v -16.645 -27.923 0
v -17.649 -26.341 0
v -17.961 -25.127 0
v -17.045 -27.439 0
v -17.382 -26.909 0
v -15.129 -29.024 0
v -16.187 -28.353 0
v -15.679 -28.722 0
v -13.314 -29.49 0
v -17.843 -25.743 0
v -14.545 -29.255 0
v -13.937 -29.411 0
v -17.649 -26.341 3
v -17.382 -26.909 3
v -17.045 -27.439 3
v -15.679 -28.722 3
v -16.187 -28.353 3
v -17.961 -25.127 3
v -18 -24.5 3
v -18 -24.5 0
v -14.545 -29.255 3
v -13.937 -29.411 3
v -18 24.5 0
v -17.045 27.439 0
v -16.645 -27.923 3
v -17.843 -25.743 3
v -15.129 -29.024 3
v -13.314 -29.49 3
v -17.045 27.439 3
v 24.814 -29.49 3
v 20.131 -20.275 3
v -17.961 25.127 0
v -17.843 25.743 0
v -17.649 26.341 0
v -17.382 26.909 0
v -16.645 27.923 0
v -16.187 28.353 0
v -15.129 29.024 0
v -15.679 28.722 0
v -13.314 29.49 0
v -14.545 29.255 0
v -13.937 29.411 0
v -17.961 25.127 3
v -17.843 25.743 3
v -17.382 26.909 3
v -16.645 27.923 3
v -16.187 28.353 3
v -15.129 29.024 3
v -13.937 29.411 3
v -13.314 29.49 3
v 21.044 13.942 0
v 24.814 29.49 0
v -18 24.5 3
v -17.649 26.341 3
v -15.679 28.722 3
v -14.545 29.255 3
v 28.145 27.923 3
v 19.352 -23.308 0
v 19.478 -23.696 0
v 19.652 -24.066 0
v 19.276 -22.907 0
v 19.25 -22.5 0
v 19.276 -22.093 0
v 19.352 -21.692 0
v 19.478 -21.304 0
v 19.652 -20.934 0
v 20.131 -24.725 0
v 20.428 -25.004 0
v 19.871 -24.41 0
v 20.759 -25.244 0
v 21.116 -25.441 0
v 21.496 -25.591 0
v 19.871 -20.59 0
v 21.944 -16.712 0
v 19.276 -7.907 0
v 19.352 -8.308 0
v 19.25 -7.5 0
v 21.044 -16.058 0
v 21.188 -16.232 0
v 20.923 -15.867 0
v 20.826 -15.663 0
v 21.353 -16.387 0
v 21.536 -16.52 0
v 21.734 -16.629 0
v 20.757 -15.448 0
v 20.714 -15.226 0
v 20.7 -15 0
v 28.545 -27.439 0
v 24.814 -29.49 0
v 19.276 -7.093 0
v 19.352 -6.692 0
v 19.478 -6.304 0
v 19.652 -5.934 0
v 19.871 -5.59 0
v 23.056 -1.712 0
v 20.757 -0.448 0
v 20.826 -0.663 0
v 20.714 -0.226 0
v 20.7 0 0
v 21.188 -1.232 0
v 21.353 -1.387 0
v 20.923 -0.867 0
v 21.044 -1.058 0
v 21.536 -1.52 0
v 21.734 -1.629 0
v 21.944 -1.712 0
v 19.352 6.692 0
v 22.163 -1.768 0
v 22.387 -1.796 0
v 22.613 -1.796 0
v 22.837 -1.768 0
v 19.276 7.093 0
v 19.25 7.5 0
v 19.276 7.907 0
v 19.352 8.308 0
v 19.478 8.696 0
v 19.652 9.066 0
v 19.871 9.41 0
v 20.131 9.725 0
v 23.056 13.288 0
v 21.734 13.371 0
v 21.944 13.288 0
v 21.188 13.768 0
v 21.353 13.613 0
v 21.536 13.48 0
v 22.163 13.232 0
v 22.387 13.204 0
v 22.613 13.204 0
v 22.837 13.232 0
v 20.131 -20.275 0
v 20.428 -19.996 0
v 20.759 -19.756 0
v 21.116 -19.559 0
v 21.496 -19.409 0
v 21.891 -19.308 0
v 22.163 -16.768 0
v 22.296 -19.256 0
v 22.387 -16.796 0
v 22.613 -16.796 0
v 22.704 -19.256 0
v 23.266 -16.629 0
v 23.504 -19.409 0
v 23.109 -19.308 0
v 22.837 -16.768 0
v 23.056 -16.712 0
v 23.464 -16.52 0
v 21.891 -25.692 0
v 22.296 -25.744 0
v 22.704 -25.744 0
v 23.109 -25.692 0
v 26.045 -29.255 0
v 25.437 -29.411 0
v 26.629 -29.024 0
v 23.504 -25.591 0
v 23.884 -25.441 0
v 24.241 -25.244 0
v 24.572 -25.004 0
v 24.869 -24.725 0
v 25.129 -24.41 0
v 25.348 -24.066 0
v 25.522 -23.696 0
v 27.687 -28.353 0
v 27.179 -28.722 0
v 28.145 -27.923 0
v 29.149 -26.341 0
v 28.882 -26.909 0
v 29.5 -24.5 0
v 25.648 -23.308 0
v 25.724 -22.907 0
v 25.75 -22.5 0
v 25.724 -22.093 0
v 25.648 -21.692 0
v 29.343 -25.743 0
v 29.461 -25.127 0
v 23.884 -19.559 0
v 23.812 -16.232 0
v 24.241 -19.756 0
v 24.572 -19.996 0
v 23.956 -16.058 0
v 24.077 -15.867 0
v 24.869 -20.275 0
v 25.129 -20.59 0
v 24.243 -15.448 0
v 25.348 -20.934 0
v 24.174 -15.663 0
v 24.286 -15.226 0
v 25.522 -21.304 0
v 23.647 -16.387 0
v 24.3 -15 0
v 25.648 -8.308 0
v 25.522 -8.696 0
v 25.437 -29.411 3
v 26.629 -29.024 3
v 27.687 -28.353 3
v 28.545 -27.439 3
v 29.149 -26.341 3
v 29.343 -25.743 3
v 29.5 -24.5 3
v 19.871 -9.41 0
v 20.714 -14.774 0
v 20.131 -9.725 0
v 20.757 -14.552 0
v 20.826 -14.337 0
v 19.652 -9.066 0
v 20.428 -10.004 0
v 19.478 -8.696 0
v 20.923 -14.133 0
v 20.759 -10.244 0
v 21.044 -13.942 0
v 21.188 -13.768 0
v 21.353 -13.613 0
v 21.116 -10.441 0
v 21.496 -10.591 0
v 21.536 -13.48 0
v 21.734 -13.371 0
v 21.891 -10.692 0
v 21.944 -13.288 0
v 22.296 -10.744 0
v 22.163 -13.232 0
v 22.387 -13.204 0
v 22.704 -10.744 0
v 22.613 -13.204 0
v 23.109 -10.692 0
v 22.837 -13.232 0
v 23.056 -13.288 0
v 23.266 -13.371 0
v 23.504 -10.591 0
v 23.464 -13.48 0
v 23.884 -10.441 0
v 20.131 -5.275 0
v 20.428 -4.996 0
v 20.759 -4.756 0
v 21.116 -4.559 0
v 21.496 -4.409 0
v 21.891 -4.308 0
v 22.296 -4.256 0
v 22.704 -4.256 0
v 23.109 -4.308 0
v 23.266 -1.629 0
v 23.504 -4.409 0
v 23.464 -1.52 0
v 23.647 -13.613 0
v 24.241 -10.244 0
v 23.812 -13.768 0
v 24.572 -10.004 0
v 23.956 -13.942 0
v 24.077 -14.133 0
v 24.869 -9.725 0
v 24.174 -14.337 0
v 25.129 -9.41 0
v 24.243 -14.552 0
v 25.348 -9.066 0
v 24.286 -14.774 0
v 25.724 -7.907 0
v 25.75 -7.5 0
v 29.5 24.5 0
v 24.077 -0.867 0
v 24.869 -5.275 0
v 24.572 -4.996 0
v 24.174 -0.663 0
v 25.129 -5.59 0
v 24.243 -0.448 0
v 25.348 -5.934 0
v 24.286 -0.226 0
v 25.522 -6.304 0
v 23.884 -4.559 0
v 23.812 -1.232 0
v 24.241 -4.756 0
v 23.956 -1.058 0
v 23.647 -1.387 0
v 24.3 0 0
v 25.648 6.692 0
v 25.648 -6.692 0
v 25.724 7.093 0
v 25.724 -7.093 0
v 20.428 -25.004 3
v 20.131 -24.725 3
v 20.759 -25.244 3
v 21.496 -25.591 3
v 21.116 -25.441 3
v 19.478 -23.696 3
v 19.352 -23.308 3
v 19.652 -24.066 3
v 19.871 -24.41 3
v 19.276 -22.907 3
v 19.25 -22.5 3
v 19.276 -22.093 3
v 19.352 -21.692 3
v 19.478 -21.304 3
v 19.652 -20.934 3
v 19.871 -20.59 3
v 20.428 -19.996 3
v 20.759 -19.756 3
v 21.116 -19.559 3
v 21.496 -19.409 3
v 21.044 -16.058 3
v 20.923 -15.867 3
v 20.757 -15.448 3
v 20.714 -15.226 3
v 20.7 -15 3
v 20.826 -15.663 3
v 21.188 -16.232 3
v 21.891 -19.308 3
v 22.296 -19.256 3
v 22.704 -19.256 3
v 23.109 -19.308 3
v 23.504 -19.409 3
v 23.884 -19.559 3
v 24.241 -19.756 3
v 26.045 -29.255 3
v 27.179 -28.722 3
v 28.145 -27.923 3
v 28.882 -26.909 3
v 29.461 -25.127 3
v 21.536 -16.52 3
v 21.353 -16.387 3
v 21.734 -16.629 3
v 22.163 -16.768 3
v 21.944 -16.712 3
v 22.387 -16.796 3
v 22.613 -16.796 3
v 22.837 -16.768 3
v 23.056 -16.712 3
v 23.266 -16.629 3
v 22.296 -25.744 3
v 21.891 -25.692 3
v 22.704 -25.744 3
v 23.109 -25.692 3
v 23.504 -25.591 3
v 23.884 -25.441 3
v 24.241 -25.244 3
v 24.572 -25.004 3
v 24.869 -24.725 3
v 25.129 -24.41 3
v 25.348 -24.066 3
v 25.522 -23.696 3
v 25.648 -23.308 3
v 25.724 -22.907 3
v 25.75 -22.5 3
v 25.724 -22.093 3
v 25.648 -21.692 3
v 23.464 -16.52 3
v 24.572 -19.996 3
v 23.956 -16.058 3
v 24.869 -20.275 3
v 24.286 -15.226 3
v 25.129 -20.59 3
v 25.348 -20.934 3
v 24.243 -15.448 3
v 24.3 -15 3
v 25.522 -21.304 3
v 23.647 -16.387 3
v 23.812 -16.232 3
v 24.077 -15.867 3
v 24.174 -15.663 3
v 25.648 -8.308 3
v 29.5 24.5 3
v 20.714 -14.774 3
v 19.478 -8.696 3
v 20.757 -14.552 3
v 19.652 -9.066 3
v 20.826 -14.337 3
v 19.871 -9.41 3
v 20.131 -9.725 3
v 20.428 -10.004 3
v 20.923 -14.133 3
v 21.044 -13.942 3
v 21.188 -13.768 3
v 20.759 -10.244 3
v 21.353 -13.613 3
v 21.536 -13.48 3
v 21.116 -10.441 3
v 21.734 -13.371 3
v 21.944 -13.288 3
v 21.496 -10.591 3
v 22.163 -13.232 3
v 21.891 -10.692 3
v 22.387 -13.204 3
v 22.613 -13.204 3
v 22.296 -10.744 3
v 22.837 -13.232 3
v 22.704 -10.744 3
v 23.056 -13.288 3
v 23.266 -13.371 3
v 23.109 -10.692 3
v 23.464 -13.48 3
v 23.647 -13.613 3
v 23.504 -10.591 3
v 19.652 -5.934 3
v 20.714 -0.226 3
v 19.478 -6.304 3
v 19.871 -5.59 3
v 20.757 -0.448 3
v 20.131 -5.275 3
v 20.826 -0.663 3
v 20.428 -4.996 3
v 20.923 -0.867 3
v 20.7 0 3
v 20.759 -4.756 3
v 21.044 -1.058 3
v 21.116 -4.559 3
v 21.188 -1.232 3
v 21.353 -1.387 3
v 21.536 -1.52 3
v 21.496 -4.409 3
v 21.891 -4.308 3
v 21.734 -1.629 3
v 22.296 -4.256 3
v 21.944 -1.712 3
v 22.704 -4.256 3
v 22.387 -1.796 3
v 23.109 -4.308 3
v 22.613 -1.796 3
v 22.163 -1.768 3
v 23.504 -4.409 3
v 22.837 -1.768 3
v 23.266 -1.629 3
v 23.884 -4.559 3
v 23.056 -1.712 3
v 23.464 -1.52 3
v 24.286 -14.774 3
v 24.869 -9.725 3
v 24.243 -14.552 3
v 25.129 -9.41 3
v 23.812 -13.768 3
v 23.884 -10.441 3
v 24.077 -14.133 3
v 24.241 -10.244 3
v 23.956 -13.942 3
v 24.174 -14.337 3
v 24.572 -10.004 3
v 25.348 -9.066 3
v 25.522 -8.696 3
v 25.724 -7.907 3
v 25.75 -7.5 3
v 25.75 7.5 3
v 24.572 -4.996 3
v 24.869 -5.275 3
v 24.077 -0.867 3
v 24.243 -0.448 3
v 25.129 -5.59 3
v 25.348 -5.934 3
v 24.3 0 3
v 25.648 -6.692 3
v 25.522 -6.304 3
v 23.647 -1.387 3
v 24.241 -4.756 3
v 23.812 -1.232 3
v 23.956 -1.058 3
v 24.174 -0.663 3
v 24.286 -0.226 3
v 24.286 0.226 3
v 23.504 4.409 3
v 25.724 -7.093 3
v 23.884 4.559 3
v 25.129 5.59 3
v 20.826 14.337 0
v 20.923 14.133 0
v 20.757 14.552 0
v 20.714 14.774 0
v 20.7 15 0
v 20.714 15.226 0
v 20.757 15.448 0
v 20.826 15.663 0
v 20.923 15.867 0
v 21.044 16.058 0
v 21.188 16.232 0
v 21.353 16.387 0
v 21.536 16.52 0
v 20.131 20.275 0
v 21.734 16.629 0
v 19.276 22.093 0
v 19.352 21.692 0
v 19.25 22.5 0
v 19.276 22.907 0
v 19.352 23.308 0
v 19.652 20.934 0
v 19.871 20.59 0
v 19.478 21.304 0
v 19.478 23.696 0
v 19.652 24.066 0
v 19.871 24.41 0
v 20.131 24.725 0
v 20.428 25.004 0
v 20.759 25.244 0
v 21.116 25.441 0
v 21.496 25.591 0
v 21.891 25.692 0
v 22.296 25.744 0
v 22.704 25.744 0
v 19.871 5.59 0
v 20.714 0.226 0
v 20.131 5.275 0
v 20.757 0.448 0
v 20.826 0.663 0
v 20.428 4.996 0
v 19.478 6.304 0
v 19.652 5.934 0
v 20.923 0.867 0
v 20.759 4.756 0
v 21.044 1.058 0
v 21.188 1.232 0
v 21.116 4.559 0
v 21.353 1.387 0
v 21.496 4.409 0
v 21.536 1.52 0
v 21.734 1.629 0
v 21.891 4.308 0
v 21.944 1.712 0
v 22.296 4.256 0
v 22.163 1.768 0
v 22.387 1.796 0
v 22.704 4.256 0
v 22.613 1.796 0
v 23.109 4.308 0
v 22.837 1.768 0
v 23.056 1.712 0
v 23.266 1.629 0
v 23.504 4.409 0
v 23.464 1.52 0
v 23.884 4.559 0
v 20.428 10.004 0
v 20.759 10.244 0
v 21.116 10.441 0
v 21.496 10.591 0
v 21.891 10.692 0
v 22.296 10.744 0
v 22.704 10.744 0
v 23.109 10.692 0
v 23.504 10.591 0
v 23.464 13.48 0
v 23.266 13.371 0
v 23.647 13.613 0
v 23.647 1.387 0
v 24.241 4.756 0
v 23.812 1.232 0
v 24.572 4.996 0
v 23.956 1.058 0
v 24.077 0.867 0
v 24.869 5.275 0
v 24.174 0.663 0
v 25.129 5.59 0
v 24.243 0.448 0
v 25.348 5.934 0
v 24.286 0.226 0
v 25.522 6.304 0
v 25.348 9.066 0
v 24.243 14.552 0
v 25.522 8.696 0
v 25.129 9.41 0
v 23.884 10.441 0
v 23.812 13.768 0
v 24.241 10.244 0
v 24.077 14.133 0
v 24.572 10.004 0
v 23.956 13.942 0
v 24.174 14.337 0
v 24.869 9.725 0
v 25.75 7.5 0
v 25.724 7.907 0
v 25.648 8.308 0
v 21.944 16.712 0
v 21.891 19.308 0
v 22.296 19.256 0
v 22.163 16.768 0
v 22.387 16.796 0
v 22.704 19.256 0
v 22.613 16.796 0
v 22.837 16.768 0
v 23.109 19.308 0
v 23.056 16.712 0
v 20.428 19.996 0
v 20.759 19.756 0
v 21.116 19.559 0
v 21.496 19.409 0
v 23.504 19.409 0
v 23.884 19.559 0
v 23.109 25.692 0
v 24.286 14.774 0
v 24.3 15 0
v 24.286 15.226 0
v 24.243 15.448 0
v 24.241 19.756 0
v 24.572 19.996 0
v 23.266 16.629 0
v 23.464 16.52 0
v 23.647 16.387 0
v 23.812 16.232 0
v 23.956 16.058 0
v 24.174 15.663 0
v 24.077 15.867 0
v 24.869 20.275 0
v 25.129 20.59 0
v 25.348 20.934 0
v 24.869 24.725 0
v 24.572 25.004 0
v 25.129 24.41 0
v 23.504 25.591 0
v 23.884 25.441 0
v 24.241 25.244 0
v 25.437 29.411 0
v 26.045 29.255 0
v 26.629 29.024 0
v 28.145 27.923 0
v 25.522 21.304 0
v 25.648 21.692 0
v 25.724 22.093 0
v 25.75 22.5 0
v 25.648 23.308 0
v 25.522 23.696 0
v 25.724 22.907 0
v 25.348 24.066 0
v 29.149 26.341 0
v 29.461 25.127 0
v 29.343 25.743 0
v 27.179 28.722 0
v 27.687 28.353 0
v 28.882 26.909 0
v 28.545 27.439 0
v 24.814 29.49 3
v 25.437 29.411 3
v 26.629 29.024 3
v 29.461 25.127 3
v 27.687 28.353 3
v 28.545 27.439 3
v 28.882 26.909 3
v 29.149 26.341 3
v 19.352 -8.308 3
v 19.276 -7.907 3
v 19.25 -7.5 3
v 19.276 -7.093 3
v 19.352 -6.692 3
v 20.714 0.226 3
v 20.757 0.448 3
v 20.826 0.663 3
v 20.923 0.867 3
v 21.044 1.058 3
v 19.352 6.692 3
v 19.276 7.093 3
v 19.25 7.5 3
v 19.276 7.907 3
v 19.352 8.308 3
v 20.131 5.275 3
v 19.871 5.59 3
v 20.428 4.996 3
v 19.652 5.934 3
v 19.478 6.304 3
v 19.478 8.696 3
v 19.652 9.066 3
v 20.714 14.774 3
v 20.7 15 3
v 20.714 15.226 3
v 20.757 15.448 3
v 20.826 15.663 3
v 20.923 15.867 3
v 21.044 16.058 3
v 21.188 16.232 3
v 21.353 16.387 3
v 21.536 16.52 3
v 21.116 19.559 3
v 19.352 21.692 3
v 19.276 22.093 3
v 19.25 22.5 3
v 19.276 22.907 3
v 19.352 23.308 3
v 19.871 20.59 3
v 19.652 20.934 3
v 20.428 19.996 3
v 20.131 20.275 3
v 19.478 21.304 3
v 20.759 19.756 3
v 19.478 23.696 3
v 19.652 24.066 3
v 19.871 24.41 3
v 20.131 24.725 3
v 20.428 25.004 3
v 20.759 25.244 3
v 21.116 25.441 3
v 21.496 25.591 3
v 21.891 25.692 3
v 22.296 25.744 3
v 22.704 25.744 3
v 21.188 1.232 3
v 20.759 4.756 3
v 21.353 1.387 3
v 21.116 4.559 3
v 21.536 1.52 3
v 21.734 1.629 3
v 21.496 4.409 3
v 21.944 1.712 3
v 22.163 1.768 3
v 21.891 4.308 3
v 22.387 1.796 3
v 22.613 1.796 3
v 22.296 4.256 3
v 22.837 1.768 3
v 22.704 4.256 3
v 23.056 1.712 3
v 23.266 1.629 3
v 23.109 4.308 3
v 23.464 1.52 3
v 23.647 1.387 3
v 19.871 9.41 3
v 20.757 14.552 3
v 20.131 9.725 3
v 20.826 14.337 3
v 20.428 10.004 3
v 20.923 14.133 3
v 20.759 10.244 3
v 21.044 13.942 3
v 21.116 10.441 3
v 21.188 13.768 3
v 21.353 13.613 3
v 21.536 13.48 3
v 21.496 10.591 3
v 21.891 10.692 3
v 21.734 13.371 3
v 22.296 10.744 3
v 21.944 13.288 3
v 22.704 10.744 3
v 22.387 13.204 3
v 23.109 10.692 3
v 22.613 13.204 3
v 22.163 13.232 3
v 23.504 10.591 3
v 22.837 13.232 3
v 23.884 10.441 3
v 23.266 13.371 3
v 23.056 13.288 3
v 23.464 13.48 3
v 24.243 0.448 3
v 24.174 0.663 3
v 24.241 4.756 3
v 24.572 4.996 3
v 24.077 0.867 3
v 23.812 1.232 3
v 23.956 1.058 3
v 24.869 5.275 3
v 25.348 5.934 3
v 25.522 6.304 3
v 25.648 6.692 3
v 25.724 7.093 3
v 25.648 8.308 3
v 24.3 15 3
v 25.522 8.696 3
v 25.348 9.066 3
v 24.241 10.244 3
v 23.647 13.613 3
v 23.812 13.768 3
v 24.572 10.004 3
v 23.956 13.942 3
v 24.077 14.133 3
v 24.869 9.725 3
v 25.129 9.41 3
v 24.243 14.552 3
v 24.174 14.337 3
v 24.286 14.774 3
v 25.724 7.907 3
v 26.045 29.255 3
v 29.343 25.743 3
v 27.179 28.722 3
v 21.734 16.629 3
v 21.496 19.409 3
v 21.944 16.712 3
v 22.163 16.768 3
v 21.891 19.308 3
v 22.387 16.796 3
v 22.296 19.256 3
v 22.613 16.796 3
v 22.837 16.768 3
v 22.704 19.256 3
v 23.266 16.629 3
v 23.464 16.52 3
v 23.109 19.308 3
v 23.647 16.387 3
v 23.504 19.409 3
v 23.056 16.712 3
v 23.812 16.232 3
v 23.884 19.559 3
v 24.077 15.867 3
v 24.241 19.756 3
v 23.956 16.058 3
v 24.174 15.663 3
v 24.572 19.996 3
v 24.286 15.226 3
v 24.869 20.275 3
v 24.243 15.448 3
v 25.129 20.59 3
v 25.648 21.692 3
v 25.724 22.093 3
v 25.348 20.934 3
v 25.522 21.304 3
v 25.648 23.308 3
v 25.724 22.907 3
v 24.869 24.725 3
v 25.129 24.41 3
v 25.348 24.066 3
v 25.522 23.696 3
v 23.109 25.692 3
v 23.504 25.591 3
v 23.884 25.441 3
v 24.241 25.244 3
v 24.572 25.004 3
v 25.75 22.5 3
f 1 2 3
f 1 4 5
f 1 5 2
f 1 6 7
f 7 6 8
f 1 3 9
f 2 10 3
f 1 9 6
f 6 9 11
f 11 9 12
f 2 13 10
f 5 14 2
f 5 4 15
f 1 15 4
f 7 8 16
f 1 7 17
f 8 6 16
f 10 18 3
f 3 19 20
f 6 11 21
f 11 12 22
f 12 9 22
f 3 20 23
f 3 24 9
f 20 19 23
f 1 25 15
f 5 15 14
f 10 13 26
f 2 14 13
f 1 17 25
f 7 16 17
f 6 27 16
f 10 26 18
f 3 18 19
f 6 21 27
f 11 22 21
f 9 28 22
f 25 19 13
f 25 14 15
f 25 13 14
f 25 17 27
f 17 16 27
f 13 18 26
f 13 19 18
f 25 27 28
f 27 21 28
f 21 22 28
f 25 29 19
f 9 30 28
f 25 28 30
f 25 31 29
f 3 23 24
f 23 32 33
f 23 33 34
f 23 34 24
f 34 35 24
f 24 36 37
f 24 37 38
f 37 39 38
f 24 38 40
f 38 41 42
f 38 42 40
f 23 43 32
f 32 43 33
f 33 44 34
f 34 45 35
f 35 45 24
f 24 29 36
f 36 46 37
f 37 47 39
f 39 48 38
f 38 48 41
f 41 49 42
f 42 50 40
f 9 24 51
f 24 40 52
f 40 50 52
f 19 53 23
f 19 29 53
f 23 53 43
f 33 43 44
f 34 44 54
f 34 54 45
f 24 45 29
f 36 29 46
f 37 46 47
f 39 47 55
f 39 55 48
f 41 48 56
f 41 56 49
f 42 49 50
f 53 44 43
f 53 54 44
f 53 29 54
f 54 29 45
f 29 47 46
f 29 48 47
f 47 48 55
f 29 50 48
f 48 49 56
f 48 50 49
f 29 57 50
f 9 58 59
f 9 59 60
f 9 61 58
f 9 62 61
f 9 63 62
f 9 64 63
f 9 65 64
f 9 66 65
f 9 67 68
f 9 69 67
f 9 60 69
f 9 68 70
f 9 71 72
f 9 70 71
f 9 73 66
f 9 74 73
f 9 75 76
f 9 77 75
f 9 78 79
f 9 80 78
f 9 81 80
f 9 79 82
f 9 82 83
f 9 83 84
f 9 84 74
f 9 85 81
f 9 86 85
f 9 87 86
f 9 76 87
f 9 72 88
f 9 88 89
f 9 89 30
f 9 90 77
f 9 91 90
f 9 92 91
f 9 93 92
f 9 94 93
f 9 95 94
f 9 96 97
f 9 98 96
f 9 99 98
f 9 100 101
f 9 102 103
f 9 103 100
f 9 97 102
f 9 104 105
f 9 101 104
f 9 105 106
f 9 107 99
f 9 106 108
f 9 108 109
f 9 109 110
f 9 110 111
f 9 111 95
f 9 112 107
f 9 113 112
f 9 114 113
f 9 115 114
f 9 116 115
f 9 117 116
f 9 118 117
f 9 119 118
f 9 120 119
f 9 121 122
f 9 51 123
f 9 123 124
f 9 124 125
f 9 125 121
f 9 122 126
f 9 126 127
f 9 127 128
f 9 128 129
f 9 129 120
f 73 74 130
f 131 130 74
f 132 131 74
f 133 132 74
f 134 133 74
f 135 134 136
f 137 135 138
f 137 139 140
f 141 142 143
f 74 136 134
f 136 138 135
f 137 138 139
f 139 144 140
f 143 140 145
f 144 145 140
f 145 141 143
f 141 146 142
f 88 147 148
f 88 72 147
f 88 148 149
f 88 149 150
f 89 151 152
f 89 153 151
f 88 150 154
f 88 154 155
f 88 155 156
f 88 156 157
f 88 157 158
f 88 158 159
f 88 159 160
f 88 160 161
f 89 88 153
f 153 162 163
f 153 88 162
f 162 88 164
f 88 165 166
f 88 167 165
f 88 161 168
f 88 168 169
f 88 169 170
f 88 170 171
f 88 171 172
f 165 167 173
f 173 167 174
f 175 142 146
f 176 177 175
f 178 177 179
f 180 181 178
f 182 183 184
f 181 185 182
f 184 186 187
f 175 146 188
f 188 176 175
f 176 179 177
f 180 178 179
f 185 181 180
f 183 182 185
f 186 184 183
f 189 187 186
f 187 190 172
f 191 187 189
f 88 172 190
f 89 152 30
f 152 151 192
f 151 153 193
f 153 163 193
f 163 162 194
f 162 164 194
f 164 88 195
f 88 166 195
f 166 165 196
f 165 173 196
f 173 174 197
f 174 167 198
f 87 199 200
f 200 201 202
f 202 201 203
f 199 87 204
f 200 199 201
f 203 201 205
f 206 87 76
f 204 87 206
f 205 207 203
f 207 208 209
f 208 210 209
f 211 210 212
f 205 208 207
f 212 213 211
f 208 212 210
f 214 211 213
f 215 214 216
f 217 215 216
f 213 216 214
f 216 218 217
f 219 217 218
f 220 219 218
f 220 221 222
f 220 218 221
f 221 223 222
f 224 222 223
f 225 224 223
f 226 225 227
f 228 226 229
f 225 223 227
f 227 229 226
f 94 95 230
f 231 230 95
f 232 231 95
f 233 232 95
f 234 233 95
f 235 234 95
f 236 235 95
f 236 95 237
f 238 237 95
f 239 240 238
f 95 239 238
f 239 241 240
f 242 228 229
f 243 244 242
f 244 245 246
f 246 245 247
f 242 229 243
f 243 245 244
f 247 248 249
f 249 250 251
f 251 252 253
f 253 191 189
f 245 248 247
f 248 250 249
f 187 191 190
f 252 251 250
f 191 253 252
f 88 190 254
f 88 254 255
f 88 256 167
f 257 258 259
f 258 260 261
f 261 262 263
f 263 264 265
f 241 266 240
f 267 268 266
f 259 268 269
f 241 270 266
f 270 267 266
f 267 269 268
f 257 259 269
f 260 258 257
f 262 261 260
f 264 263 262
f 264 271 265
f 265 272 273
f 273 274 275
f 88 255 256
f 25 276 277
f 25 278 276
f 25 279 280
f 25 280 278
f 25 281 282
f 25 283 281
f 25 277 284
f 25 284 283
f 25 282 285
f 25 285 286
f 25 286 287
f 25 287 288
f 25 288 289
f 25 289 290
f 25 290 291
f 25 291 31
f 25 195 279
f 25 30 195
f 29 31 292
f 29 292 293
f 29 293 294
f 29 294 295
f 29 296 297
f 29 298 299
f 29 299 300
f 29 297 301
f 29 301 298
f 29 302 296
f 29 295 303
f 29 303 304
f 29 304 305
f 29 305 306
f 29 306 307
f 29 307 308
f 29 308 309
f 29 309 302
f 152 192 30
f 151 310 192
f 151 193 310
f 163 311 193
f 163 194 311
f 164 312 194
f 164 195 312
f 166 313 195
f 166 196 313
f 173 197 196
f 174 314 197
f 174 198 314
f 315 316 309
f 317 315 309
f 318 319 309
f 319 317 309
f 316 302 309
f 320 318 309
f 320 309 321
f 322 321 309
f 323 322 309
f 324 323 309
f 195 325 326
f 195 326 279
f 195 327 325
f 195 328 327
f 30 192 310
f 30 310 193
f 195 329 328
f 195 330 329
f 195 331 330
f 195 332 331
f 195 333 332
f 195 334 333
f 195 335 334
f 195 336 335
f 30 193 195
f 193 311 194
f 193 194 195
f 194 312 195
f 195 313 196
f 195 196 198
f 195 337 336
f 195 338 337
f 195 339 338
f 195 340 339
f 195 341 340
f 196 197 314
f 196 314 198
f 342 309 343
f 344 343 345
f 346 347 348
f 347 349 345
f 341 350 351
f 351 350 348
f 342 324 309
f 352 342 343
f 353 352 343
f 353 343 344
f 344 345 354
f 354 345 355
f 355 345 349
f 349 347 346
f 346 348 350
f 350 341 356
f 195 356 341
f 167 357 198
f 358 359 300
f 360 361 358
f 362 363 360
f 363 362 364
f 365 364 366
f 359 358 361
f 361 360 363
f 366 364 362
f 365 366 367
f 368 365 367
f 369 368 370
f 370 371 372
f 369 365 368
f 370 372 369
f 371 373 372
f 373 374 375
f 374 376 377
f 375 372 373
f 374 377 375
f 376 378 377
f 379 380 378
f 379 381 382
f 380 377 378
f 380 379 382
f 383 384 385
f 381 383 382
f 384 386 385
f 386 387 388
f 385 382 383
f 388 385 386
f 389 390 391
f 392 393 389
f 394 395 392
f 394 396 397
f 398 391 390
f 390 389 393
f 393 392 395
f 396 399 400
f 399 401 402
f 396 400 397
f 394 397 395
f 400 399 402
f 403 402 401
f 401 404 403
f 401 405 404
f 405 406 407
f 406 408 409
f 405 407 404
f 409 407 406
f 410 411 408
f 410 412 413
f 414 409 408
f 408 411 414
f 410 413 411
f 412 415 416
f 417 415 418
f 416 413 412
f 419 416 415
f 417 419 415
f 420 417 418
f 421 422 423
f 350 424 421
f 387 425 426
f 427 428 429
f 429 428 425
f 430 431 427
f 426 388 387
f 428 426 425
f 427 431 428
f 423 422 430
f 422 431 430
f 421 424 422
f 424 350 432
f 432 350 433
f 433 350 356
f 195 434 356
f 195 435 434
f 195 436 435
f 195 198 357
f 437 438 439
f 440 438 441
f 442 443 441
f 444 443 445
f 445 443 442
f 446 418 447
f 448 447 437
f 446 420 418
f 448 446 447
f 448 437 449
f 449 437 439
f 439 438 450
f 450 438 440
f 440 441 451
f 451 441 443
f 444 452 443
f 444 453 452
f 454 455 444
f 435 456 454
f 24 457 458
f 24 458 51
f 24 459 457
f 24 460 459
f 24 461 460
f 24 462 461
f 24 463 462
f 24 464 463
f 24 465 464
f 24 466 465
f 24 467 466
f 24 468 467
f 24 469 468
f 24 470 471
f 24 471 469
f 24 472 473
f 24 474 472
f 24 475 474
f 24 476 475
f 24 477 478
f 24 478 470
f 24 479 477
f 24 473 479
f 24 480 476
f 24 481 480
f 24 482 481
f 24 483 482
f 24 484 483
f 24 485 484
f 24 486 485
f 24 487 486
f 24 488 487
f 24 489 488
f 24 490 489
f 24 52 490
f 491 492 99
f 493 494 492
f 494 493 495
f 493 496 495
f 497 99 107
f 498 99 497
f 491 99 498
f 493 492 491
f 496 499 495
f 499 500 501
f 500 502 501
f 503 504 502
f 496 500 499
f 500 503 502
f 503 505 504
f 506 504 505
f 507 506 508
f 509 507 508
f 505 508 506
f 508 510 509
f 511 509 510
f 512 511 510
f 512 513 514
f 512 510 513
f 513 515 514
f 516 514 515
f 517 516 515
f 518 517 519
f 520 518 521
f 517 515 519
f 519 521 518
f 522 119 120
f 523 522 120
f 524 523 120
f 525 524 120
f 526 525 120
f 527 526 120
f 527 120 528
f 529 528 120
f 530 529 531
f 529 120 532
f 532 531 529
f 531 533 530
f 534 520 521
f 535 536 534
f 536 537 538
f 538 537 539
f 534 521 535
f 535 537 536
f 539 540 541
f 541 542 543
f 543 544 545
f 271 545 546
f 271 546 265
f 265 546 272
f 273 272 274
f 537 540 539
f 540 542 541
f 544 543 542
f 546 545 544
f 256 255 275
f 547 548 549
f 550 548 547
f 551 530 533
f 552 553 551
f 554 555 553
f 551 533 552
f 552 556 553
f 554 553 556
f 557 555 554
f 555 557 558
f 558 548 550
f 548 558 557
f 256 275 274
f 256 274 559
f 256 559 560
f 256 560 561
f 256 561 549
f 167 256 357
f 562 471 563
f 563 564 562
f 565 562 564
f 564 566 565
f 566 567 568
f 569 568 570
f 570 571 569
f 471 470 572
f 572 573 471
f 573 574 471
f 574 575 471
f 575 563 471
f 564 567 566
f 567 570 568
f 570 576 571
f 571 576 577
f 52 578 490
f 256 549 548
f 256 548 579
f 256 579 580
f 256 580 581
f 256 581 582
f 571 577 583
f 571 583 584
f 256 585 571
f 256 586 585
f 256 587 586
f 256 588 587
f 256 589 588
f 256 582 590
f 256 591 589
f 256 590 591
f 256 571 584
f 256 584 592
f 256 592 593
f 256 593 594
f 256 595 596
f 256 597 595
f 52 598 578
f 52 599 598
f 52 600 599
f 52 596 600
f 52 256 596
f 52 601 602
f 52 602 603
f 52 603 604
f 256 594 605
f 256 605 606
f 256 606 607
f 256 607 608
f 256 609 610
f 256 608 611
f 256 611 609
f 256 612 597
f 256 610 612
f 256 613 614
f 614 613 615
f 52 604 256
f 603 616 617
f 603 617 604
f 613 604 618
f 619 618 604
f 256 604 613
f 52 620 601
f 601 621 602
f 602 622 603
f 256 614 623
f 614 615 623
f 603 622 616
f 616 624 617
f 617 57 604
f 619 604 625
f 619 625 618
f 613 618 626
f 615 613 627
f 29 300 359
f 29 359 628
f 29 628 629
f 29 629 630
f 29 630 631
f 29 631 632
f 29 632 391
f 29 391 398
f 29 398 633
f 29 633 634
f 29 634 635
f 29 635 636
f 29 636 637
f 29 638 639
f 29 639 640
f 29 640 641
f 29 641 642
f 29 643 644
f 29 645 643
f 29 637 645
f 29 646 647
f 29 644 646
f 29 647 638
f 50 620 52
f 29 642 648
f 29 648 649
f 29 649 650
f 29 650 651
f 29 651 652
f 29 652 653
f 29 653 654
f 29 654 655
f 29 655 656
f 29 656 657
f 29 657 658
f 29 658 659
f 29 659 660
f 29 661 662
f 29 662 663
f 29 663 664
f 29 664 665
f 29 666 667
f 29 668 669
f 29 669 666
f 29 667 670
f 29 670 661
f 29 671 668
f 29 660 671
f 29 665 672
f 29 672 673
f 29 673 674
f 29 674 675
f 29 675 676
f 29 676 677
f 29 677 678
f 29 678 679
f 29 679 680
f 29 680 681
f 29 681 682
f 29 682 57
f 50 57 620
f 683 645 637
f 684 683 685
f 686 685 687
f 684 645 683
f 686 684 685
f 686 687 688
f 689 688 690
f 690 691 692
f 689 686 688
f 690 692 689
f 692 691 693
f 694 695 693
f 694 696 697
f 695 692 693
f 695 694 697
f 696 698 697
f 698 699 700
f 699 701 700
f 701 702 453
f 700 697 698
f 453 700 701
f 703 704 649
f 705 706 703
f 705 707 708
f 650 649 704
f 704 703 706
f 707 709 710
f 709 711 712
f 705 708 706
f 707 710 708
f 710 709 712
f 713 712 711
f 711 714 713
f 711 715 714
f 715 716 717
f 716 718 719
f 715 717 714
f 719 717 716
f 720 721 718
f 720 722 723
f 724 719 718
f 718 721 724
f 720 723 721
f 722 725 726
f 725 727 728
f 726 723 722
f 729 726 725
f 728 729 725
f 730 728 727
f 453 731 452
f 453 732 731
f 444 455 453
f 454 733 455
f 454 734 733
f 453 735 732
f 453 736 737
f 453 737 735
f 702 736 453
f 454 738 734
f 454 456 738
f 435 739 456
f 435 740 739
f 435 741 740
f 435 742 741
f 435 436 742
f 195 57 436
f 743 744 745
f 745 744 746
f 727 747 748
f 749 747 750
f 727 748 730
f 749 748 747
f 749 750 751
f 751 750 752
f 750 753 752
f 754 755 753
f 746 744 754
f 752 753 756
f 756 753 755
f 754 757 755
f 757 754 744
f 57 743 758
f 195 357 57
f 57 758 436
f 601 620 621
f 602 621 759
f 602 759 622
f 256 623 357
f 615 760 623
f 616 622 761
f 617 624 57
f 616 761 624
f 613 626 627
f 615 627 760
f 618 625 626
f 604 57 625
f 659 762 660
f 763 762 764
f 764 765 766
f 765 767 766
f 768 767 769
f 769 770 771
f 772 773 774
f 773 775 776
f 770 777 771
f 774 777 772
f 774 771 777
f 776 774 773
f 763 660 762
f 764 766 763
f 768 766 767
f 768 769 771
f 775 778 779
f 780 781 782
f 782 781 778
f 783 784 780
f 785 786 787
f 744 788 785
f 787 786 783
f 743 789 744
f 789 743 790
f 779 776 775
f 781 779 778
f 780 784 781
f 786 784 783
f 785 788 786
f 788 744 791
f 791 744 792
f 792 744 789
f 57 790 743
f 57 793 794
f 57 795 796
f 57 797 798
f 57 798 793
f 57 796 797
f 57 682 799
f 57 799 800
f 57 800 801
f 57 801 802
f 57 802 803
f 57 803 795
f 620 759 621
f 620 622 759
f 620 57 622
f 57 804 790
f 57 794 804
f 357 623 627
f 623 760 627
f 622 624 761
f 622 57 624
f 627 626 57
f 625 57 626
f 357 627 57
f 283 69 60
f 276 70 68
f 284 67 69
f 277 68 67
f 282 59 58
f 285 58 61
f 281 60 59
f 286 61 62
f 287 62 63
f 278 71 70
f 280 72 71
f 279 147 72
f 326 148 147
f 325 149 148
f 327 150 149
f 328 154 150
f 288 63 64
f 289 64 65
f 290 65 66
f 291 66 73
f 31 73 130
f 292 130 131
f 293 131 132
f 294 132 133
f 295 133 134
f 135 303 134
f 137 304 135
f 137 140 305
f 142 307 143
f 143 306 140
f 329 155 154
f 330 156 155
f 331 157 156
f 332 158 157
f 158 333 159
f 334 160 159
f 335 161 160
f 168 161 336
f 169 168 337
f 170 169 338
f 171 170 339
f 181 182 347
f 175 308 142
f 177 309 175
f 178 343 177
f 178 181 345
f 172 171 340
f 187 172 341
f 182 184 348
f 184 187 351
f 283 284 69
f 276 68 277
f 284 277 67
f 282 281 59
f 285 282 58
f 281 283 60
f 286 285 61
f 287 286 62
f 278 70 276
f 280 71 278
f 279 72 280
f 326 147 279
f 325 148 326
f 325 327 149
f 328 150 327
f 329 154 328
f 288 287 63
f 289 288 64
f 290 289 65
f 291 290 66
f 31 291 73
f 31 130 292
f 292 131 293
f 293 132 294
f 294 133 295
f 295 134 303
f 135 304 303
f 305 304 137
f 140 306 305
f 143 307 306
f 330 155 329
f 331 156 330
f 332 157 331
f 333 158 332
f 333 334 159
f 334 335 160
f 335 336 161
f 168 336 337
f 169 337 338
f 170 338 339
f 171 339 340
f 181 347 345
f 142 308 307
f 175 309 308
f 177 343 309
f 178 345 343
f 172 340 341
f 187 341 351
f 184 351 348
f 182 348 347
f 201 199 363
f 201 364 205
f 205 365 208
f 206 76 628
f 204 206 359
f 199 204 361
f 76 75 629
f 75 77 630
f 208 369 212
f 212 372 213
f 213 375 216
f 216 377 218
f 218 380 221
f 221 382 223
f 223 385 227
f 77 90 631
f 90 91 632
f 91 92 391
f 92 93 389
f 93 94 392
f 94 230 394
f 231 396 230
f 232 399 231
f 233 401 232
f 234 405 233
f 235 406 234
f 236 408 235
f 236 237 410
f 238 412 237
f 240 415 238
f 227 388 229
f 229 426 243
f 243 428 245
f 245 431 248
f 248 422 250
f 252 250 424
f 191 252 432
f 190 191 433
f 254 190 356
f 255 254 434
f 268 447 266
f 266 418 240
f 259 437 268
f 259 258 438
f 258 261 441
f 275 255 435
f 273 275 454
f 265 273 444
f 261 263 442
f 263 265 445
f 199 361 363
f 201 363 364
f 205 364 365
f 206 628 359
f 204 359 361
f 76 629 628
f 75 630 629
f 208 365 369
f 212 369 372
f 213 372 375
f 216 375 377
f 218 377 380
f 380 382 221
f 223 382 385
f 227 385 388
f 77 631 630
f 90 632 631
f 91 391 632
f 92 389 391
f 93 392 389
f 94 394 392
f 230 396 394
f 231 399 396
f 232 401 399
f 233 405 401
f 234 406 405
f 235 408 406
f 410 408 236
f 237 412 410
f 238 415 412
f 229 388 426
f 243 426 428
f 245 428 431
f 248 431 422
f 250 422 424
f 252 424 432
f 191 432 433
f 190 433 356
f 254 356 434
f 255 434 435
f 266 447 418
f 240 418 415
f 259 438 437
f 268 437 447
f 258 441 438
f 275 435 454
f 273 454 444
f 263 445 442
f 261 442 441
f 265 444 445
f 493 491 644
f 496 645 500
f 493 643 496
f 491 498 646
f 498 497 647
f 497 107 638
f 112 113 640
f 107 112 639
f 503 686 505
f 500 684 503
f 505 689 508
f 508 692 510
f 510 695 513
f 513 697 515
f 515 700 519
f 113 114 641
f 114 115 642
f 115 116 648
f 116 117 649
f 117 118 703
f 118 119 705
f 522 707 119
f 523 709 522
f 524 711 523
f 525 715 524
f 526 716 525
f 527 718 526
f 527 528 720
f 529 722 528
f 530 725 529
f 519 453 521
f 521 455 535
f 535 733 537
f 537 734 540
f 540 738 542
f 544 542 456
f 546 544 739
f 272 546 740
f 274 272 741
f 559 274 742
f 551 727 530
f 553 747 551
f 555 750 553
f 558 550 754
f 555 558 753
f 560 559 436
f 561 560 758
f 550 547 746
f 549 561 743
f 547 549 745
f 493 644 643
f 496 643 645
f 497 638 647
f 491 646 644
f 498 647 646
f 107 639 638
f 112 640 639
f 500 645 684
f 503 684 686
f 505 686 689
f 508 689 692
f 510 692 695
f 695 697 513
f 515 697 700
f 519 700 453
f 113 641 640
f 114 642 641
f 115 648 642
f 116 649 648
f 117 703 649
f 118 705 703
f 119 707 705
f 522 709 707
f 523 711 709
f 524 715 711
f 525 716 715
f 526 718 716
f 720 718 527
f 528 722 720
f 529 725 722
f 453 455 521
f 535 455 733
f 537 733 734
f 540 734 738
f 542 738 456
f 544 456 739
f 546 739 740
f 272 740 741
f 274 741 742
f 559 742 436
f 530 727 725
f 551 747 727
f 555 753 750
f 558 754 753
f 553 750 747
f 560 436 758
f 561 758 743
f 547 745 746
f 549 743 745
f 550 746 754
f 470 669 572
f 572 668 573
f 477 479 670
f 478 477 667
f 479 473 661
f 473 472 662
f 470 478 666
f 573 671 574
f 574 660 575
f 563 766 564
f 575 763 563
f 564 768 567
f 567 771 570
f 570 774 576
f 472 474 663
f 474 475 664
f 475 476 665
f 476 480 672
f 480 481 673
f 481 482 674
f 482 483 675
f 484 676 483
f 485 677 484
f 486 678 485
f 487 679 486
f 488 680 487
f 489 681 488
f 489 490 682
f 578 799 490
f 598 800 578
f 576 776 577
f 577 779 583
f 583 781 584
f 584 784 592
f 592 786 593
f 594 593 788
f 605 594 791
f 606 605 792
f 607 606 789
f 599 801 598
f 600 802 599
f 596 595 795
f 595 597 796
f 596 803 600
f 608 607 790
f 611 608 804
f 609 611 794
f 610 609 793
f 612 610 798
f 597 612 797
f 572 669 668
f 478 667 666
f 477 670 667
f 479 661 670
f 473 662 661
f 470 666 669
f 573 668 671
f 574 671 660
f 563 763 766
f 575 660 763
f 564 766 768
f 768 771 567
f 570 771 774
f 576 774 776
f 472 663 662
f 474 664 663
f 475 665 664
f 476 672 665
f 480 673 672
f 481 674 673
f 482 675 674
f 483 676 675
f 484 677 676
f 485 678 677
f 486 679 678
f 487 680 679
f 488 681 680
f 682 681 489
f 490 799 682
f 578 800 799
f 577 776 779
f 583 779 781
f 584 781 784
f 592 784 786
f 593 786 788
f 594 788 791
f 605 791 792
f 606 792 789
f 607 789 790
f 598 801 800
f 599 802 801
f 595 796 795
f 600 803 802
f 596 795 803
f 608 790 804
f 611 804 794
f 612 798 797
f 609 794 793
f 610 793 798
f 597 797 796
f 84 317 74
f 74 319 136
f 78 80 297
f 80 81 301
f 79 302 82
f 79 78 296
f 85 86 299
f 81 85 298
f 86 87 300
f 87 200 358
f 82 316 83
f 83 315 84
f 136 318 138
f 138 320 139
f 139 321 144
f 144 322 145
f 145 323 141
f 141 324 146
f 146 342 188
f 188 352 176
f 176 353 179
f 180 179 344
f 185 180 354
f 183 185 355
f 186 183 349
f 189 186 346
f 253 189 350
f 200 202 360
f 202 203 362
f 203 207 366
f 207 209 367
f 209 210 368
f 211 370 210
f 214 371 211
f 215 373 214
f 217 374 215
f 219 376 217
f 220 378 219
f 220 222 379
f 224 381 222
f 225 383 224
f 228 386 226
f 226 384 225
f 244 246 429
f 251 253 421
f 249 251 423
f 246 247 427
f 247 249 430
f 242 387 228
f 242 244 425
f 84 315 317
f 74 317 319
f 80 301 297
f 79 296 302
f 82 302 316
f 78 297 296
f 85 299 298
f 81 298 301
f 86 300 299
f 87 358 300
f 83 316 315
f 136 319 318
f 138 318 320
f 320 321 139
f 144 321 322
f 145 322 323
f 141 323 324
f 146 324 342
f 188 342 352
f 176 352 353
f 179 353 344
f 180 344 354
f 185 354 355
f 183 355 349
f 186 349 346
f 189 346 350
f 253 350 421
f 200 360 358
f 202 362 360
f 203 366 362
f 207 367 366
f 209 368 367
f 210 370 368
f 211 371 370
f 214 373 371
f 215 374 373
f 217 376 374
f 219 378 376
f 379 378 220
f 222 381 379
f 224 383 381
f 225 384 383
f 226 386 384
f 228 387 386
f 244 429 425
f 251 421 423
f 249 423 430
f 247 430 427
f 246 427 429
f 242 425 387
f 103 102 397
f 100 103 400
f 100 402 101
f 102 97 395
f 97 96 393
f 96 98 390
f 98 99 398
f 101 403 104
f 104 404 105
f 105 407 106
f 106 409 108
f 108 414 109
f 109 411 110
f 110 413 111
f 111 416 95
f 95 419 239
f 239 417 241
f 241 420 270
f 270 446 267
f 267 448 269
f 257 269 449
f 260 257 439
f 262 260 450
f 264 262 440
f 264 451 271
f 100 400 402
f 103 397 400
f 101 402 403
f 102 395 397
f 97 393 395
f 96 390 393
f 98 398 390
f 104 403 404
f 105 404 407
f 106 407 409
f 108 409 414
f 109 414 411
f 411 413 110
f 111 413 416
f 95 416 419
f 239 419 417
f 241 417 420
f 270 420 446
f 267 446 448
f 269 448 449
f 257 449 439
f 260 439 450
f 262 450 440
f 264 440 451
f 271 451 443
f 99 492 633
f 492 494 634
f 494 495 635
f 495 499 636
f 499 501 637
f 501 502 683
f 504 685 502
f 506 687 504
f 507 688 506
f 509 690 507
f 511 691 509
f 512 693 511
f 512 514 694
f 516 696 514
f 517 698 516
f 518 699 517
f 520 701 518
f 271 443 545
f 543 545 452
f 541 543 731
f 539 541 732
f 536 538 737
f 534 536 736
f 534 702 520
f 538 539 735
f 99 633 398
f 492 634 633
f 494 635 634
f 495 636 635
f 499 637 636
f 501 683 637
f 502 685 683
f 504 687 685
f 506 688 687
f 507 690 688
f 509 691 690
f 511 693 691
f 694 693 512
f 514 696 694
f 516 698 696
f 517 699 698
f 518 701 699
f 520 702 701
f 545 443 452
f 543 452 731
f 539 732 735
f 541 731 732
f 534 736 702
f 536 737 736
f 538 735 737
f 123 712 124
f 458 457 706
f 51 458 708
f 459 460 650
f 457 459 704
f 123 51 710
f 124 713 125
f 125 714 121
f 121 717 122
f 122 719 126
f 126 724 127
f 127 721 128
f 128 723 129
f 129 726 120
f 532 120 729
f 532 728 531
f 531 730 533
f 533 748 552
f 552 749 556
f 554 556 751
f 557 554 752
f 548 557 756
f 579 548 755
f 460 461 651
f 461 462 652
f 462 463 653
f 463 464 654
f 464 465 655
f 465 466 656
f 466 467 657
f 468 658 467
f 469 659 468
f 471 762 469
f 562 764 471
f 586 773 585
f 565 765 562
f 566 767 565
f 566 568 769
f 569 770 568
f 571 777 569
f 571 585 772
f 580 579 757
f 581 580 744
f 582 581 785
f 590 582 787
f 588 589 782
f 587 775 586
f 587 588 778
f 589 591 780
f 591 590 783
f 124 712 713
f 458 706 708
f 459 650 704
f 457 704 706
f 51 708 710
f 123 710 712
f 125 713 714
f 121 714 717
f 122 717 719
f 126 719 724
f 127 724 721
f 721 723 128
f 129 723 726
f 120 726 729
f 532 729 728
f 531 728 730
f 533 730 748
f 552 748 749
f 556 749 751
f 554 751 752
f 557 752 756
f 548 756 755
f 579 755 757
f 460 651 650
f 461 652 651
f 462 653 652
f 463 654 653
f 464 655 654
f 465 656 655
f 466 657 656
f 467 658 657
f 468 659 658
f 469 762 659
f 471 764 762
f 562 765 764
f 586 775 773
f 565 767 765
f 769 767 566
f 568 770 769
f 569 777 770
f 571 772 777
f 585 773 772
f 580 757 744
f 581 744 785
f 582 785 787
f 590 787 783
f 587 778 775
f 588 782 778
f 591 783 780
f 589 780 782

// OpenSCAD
$fn = 50;

difference() {
	union() {
		translate(v = [5.75, 0.0, 0]) {
			hull() {
				translate(v = [-18.75, 24.5, 0]) {
					cylinder(h = 3, r = 5);
				}
				translate(v = [18.75, 24.5, 0]) {
					cylinder(h = 3, r = 5);
				}
				translate(v = [-18.75, -24.5, 0]) {
					cylinder(h = 3, r = 5);
				}
				translate(v = [18.75, -24.5, 0]) {
					cylinder(h = 3, r = 5);
				}
			}
		}
	}
	union() {
		translate(v = [22.5, -22.5, -1]) {
			cylinder(h = 5, r = 3.25);
		}
		translate(v = [22.5, -7.5, -1]) {
			cylinder(h = 5, r = 3.25);
		}
		translate(v = [22.5, 7.5, -1]) {
			cylinder(h = 5, r = 3.25);
		}
		translate(v = [22.5, 22.5, -1]) {
			cylinder(h = 5, r = 3.25);
		}
		translate(v = [22.5, -15.0, -1]) {
			cylinder(h = 5, r = 1.8);
		}
		translate(v = [22.5, 0.0, -1]) {
			cylinder(h = 5, r = 1.8);
		}
		translate(v = [22.5, 15.0, -1]) {
			cylinder(h = 5, r = 1.8);
		}
	}
}
